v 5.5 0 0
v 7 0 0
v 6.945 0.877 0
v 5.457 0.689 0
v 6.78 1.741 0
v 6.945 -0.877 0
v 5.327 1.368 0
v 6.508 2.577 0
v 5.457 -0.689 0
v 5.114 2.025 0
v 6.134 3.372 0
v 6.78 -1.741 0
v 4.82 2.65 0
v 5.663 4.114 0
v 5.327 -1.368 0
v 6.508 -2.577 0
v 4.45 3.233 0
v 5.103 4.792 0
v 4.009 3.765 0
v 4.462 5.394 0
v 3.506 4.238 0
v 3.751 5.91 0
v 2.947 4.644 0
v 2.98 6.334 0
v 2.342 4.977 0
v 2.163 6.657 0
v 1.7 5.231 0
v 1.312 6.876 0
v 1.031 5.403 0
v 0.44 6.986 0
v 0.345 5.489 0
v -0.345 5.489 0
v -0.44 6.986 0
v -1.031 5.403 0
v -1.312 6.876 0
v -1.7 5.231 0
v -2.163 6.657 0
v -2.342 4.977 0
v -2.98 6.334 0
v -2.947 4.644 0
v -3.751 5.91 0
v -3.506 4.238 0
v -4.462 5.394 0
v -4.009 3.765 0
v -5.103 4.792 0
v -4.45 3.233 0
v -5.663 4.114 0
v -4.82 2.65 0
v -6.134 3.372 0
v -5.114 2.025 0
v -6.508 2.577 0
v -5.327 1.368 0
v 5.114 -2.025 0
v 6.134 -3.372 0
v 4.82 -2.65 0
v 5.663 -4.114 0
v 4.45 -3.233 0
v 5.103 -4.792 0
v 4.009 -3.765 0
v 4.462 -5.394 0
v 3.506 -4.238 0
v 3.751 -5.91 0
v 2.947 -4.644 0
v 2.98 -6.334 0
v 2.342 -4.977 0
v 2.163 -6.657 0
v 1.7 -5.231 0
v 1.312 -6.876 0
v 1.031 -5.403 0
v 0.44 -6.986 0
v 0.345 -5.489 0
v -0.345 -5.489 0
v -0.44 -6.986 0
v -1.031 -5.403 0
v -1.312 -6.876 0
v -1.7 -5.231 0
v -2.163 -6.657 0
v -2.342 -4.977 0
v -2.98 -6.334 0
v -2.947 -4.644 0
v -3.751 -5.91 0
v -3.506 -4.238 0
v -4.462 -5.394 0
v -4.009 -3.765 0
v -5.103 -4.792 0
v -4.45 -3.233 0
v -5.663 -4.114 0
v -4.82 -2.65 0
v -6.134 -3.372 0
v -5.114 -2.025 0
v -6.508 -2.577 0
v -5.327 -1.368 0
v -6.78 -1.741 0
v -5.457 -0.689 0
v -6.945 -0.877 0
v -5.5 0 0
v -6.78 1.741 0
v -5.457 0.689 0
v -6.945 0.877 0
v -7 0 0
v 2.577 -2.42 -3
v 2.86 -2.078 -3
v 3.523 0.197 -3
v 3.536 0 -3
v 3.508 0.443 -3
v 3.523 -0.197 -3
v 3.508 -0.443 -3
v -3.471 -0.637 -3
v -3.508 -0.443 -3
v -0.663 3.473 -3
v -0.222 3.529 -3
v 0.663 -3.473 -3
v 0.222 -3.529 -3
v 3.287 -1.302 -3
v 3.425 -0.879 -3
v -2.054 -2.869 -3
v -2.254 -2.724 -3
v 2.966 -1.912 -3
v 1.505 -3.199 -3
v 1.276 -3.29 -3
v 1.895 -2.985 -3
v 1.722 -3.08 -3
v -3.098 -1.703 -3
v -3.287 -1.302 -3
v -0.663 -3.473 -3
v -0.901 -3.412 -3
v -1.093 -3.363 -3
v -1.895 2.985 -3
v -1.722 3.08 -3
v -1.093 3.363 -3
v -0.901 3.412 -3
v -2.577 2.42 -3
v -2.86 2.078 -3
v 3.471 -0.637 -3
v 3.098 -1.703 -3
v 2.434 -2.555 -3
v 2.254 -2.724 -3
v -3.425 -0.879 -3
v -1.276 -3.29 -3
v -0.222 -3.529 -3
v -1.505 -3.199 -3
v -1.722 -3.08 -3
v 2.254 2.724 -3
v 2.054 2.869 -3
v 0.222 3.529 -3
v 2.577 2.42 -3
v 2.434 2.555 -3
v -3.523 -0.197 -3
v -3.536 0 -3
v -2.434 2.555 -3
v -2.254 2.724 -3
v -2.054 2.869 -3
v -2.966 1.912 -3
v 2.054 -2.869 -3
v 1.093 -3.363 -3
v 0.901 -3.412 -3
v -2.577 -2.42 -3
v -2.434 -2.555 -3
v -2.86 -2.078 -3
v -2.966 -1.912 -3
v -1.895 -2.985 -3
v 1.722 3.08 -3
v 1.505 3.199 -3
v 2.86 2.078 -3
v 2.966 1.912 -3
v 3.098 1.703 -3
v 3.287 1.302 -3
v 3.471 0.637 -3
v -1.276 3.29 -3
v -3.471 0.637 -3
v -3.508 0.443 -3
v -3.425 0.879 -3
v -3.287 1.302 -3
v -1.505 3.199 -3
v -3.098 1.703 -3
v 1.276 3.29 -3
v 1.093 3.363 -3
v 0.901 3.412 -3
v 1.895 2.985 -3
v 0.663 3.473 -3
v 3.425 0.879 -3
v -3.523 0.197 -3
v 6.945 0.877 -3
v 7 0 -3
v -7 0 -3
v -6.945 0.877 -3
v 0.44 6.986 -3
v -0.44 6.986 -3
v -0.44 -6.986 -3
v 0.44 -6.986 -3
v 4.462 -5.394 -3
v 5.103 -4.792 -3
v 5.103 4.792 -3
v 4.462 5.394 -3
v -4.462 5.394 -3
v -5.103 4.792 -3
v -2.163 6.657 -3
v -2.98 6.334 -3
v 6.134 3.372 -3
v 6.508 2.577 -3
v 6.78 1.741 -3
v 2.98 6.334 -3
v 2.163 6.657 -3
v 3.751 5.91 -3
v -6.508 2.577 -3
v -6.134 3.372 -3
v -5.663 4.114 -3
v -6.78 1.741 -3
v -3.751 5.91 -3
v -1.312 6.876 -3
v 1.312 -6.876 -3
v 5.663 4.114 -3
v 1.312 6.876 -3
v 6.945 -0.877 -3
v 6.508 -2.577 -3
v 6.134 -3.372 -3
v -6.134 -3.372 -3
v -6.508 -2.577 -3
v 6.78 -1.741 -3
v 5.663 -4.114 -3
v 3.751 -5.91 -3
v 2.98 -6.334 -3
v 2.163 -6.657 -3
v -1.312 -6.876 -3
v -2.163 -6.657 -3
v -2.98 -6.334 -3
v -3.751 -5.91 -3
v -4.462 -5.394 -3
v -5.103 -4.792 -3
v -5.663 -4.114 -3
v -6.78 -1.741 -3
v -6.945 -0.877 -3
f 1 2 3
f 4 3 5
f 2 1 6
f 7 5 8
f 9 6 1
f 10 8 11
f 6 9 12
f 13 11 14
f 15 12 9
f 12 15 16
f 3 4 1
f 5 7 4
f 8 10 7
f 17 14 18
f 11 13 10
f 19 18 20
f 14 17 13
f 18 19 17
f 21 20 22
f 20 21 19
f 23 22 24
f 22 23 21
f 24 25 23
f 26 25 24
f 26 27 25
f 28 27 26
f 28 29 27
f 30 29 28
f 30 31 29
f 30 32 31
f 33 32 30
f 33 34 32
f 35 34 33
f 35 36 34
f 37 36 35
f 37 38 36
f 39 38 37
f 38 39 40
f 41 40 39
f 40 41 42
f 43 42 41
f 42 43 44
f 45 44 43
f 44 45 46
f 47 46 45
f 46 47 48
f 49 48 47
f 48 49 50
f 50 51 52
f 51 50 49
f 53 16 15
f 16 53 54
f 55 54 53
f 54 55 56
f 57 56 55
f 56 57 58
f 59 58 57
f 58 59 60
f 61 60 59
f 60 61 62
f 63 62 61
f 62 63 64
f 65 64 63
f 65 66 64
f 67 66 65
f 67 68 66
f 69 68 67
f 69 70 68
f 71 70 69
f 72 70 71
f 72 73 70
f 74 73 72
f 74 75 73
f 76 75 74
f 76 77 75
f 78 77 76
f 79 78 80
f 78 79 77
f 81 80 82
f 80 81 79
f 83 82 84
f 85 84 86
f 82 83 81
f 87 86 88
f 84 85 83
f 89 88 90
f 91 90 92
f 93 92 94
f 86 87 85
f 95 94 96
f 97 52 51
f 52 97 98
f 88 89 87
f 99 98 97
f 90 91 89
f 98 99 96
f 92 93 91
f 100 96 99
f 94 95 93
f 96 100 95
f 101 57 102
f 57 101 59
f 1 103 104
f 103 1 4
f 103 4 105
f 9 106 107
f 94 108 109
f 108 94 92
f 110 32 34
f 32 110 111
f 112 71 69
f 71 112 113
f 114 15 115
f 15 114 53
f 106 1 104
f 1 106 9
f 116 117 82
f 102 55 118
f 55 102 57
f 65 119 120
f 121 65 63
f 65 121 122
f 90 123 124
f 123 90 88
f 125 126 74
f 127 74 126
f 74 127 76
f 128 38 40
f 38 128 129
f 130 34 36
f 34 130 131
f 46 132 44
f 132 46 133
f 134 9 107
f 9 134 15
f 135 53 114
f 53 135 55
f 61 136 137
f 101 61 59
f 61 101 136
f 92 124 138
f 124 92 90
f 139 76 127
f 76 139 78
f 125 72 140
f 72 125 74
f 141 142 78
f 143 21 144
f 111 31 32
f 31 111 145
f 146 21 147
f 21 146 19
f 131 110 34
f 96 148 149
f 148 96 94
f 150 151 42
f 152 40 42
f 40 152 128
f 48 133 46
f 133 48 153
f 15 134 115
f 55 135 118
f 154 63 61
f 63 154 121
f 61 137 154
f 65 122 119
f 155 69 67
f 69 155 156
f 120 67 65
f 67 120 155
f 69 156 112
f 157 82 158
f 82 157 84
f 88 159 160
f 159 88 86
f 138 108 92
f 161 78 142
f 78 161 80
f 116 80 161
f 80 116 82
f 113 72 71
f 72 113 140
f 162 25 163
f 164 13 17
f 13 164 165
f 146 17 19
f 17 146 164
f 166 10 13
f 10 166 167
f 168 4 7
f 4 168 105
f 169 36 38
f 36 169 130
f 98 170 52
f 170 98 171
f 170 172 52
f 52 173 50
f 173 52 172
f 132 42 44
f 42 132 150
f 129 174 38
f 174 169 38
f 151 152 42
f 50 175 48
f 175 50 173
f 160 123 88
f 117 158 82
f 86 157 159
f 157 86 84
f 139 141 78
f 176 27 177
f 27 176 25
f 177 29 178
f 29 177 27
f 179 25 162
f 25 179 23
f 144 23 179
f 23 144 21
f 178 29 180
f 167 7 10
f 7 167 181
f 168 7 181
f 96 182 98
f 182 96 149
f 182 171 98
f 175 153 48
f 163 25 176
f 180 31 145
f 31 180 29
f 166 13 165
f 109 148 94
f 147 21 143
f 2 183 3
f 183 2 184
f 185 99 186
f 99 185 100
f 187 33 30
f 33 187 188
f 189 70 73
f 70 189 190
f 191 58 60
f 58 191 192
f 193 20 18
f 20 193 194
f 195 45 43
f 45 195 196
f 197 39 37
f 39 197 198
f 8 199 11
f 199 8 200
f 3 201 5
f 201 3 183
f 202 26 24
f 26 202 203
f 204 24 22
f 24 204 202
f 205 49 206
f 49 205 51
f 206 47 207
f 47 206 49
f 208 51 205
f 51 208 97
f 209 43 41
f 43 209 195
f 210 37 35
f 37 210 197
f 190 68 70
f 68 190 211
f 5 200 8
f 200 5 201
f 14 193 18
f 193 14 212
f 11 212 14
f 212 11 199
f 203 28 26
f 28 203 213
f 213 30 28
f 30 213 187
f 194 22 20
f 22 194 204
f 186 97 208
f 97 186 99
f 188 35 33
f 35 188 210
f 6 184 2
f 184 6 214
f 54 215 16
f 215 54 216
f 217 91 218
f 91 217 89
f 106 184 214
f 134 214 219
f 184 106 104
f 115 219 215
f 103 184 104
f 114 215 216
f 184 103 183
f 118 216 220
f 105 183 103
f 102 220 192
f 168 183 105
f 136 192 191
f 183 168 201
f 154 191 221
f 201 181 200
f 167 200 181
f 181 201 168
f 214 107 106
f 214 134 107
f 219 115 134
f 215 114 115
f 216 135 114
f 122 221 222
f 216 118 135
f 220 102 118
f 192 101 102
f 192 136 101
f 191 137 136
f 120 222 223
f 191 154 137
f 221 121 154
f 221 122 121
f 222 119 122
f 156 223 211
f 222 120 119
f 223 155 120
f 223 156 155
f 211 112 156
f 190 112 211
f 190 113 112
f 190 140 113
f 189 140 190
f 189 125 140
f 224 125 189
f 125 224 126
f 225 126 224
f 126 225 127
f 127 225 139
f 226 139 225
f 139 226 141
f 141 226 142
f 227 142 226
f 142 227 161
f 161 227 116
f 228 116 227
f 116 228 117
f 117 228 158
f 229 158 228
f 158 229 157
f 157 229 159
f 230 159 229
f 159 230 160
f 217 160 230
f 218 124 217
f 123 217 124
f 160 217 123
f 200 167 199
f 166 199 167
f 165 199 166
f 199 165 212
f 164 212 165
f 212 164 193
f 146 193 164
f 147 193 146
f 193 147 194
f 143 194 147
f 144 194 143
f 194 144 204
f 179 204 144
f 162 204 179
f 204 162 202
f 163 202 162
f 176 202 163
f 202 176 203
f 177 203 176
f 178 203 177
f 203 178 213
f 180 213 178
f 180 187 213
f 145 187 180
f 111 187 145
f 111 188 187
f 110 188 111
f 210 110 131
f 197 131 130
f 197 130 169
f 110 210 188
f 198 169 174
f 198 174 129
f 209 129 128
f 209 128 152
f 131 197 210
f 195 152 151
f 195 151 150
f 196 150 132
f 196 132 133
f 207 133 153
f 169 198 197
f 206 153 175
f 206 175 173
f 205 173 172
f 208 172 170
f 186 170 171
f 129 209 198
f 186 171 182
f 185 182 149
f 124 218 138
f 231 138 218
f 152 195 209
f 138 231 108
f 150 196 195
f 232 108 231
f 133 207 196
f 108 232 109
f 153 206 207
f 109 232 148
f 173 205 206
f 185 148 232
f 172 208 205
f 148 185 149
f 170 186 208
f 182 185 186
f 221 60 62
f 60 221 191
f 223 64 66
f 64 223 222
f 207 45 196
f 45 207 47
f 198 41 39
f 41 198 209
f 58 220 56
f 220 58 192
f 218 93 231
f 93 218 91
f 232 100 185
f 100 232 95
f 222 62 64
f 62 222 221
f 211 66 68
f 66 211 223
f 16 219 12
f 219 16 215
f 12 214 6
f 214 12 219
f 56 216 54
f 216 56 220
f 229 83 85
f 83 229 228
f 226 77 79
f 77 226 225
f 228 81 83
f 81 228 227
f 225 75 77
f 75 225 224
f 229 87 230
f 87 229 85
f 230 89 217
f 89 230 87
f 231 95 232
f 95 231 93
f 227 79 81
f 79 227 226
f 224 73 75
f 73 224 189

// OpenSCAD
$fn = 50;


difference() {
	union() {
		translate(v = [0, 0, -3.0000000000]) {
			cylinder(h = 3, r = 7.0000000000);
		}
	}
	union() {
		translate(v = [0, 0, 0]) {
			rotate(a = [0, 0, 0]) {
				difference() {
					union() {
						translate(v = [0, 0, -6.0000000000]) {
							cylinder(h = 6, r = 2.2500000000);
						}
						translate(v = [0, 0, -4.2000000000]) {
							cylinder(h = 4.2000000000, r1 = 2.7500000000, r2 = 5.5000000000);
						}
						translate(v = [0, 0, -6.0000000000]) {
							cylinder(h = 6, r = 2.7500000000);
						}
						translate(v = [0, 0, -6.0000000000]) {
							cylinder(h = 6, r = 2.2500000000);
						}
					}
					union();
				}
			}
		}
	}
}
